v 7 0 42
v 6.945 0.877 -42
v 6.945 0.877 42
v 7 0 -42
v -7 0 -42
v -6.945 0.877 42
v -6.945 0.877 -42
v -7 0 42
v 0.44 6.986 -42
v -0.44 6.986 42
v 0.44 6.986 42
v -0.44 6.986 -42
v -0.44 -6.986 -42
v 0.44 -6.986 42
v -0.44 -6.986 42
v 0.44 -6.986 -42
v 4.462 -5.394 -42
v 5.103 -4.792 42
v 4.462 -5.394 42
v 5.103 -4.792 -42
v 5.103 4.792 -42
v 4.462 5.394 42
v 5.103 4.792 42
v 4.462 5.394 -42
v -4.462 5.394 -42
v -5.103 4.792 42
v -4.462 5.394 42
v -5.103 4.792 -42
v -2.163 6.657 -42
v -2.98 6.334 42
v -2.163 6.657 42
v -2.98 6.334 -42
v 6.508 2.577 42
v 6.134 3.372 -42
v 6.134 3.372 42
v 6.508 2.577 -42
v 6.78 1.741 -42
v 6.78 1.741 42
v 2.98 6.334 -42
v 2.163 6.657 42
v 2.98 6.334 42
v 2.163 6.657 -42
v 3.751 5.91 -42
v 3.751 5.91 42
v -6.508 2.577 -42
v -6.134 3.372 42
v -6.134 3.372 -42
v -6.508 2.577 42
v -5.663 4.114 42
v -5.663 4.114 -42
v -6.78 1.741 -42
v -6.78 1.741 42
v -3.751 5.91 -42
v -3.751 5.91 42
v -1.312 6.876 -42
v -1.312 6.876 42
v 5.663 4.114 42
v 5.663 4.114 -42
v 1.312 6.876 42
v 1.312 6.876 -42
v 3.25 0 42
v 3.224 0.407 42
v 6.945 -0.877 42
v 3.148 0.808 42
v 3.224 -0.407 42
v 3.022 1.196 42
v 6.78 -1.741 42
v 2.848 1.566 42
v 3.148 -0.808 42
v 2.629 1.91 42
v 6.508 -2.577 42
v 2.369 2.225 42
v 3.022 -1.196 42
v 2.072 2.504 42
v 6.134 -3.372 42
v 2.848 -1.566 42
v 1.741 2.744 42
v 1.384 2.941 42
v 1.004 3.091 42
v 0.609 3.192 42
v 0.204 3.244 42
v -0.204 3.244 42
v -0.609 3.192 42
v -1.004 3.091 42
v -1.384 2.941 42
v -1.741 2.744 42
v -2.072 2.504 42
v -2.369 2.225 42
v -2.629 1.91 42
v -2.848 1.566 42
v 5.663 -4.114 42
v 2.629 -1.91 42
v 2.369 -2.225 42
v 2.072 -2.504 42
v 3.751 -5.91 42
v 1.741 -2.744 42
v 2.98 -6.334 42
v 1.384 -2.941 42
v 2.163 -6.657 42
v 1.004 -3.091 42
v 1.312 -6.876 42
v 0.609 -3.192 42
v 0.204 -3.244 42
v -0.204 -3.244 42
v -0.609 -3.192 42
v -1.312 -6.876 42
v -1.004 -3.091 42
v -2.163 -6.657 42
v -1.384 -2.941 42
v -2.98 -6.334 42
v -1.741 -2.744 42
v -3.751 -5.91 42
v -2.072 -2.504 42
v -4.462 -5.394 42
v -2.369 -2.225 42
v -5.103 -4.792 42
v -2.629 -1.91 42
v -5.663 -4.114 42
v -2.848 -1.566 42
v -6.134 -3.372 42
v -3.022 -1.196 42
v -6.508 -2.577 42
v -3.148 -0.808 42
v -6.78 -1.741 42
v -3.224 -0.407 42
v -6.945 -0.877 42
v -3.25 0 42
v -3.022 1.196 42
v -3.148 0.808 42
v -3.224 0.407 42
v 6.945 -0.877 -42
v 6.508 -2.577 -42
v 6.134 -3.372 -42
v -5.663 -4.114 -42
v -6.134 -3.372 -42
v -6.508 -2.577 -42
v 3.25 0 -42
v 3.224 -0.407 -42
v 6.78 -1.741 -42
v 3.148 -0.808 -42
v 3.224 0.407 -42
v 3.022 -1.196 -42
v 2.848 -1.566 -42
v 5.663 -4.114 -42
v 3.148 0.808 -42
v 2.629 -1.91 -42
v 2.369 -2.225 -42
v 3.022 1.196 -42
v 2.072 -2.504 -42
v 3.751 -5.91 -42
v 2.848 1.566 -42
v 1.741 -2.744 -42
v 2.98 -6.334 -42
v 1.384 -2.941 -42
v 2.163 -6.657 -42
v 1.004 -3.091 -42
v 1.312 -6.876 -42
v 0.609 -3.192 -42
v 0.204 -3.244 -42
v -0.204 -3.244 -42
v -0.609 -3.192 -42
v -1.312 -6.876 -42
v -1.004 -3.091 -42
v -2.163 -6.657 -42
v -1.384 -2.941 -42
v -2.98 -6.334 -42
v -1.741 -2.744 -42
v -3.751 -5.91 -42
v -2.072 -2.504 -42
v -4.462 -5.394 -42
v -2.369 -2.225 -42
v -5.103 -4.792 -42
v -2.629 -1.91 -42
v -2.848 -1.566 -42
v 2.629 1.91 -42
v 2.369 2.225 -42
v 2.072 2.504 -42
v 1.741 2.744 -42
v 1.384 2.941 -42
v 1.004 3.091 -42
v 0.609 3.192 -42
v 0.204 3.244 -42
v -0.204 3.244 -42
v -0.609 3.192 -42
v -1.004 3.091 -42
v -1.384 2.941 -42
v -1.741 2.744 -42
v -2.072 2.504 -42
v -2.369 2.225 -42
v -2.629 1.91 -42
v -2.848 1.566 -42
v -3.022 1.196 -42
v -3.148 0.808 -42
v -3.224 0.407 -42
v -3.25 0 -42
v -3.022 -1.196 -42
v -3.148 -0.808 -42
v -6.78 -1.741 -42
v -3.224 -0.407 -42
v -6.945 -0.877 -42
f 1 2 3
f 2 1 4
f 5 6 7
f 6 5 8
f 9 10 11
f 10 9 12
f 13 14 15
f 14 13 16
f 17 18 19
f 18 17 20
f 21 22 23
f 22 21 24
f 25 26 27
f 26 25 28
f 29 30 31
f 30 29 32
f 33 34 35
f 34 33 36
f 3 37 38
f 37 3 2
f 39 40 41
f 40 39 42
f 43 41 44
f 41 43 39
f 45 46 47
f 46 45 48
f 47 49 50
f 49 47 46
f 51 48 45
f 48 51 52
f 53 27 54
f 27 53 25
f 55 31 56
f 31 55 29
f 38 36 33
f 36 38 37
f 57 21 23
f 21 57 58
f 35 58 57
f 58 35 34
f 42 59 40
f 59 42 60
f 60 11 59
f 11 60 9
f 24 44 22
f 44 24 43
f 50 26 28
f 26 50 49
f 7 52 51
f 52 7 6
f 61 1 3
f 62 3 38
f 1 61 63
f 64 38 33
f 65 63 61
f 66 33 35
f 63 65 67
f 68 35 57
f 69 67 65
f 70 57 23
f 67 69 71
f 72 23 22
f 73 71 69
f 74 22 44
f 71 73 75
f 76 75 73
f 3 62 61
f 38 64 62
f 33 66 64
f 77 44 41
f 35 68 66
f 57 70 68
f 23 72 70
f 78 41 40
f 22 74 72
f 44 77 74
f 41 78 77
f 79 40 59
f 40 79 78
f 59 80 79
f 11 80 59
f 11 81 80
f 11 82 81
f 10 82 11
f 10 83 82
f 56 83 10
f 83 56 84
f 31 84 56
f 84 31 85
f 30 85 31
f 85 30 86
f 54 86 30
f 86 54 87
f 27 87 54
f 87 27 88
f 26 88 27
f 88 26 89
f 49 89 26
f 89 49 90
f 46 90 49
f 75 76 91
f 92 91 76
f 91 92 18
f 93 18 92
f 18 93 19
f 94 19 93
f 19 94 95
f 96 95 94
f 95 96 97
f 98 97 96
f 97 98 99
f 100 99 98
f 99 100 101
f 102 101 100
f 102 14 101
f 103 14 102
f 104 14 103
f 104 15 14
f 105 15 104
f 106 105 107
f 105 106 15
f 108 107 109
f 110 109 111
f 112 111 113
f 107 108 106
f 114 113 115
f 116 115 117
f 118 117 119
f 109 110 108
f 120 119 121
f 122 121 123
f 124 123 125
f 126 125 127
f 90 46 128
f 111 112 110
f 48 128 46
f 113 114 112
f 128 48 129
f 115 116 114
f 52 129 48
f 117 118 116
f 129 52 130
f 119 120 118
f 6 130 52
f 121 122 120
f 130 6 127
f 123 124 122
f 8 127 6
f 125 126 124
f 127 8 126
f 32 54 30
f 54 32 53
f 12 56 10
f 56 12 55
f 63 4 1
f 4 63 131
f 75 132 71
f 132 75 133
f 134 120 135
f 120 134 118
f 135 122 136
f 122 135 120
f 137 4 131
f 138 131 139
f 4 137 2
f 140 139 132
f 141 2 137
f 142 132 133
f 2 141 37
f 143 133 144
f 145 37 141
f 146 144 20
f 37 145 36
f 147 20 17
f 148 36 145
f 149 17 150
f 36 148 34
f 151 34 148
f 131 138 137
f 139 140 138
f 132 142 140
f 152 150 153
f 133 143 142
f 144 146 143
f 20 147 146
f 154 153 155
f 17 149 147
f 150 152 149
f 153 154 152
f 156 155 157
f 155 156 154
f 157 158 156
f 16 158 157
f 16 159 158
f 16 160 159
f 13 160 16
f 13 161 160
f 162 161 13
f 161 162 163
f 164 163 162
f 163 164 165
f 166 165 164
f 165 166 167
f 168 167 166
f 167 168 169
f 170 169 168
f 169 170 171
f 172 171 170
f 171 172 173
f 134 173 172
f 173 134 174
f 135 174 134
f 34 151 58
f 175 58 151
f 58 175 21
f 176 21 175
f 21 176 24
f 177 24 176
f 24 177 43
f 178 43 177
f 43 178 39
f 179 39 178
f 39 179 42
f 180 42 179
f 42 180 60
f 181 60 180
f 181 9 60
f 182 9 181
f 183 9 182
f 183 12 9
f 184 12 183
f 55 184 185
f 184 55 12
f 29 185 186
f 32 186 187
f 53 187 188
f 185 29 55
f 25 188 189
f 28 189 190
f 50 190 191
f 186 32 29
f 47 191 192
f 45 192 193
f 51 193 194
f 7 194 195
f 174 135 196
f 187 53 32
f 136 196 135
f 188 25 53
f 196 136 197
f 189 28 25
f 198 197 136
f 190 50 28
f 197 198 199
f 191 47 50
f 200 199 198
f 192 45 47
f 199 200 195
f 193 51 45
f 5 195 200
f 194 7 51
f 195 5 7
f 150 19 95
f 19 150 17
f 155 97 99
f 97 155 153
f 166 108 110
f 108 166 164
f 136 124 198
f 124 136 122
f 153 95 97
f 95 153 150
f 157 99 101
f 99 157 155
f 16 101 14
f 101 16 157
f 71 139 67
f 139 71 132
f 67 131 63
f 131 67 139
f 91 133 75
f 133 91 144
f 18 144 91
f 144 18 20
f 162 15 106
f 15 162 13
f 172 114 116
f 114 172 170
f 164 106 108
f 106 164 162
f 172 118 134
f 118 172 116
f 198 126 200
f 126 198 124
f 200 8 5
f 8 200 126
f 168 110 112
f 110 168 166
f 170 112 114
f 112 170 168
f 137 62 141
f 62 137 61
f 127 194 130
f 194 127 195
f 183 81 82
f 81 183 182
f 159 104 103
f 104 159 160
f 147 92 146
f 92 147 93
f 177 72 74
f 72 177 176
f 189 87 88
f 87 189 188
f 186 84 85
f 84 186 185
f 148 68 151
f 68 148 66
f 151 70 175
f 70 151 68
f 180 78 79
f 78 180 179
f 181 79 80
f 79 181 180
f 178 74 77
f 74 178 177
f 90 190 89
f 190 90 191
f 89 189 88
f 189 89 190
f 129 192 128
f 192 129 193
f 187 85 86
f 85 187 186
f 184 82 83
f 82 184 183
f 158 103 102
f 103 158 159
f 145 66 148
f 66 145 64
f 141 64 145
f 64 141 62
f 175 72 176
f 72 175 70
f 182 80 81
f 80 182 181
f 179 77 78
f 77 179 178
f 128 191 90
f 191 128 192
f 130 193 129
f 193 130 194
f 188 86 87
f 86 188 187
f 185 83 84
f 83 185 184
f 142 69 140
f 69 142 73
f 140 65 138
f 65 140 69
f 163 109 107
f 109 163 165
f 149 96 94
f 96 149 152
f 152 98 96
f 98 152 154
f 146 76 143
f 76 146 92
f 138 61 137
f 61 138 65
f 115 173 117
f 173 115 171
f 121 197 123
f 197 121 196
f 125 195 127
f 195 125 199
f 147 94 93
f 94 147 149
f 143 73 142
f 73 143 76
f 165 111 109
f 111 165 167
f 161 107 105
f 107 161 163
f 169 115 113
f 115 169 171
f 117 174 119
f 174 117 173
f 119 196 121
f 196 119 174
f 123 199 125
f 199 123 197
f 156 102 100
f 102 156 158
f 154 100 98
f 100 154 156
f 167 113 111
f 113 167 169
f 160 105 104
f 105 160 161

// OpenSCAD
$fn = 50;


difference() {
	union() {
		translate(v = [0, 0, -42.0000000000]) {
			cylinder(h = 84, r = 7.0000000000);
		}
	}
	union() {
		translate(v = [0, 0, -100.0000000000]) {
			cylinder(h = 200, r = 3.2500000000);
		}
	}
}
